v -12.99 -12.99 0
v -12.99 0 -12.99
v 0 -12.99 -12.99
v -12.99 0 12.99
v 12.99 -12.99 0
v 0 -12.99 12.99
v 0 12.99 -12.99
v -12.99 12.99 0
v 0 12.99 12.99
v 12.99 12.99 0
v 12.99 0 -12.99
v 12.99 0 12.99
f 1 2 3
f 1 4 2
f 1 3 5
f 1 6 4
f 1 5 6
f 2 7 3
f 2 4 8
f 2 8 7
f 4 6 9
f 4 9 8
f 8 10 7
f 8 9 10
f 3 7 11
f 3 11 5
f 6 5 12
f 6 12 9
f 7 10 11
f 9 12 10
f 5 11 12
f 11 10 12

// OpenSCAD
// this function gives the euler
// angles that rotate the z axis onto
// aparticular direction
function z2miller(plane)=
let(p=plane/sqrt(plane*plane))
[0,acos(p[2]),atan2(p[1],p[0])];




intersection(){

t = 30;
rotate(z2miller([1,1,1]))
cylinder(30,100,100,center=true);

rotate(z2miller([1,1,-1]))
cylinder(30,100,100,center=true);

rotate(z2miller([1,-1,1]))
cylinder(30,100,100,center=true);
    

rotate(z2miller([-1,1,1]))
cylinder(30,100,100,center=true);
    
cube(sqrt(3)/2*[t,t,t],center=true);

}
